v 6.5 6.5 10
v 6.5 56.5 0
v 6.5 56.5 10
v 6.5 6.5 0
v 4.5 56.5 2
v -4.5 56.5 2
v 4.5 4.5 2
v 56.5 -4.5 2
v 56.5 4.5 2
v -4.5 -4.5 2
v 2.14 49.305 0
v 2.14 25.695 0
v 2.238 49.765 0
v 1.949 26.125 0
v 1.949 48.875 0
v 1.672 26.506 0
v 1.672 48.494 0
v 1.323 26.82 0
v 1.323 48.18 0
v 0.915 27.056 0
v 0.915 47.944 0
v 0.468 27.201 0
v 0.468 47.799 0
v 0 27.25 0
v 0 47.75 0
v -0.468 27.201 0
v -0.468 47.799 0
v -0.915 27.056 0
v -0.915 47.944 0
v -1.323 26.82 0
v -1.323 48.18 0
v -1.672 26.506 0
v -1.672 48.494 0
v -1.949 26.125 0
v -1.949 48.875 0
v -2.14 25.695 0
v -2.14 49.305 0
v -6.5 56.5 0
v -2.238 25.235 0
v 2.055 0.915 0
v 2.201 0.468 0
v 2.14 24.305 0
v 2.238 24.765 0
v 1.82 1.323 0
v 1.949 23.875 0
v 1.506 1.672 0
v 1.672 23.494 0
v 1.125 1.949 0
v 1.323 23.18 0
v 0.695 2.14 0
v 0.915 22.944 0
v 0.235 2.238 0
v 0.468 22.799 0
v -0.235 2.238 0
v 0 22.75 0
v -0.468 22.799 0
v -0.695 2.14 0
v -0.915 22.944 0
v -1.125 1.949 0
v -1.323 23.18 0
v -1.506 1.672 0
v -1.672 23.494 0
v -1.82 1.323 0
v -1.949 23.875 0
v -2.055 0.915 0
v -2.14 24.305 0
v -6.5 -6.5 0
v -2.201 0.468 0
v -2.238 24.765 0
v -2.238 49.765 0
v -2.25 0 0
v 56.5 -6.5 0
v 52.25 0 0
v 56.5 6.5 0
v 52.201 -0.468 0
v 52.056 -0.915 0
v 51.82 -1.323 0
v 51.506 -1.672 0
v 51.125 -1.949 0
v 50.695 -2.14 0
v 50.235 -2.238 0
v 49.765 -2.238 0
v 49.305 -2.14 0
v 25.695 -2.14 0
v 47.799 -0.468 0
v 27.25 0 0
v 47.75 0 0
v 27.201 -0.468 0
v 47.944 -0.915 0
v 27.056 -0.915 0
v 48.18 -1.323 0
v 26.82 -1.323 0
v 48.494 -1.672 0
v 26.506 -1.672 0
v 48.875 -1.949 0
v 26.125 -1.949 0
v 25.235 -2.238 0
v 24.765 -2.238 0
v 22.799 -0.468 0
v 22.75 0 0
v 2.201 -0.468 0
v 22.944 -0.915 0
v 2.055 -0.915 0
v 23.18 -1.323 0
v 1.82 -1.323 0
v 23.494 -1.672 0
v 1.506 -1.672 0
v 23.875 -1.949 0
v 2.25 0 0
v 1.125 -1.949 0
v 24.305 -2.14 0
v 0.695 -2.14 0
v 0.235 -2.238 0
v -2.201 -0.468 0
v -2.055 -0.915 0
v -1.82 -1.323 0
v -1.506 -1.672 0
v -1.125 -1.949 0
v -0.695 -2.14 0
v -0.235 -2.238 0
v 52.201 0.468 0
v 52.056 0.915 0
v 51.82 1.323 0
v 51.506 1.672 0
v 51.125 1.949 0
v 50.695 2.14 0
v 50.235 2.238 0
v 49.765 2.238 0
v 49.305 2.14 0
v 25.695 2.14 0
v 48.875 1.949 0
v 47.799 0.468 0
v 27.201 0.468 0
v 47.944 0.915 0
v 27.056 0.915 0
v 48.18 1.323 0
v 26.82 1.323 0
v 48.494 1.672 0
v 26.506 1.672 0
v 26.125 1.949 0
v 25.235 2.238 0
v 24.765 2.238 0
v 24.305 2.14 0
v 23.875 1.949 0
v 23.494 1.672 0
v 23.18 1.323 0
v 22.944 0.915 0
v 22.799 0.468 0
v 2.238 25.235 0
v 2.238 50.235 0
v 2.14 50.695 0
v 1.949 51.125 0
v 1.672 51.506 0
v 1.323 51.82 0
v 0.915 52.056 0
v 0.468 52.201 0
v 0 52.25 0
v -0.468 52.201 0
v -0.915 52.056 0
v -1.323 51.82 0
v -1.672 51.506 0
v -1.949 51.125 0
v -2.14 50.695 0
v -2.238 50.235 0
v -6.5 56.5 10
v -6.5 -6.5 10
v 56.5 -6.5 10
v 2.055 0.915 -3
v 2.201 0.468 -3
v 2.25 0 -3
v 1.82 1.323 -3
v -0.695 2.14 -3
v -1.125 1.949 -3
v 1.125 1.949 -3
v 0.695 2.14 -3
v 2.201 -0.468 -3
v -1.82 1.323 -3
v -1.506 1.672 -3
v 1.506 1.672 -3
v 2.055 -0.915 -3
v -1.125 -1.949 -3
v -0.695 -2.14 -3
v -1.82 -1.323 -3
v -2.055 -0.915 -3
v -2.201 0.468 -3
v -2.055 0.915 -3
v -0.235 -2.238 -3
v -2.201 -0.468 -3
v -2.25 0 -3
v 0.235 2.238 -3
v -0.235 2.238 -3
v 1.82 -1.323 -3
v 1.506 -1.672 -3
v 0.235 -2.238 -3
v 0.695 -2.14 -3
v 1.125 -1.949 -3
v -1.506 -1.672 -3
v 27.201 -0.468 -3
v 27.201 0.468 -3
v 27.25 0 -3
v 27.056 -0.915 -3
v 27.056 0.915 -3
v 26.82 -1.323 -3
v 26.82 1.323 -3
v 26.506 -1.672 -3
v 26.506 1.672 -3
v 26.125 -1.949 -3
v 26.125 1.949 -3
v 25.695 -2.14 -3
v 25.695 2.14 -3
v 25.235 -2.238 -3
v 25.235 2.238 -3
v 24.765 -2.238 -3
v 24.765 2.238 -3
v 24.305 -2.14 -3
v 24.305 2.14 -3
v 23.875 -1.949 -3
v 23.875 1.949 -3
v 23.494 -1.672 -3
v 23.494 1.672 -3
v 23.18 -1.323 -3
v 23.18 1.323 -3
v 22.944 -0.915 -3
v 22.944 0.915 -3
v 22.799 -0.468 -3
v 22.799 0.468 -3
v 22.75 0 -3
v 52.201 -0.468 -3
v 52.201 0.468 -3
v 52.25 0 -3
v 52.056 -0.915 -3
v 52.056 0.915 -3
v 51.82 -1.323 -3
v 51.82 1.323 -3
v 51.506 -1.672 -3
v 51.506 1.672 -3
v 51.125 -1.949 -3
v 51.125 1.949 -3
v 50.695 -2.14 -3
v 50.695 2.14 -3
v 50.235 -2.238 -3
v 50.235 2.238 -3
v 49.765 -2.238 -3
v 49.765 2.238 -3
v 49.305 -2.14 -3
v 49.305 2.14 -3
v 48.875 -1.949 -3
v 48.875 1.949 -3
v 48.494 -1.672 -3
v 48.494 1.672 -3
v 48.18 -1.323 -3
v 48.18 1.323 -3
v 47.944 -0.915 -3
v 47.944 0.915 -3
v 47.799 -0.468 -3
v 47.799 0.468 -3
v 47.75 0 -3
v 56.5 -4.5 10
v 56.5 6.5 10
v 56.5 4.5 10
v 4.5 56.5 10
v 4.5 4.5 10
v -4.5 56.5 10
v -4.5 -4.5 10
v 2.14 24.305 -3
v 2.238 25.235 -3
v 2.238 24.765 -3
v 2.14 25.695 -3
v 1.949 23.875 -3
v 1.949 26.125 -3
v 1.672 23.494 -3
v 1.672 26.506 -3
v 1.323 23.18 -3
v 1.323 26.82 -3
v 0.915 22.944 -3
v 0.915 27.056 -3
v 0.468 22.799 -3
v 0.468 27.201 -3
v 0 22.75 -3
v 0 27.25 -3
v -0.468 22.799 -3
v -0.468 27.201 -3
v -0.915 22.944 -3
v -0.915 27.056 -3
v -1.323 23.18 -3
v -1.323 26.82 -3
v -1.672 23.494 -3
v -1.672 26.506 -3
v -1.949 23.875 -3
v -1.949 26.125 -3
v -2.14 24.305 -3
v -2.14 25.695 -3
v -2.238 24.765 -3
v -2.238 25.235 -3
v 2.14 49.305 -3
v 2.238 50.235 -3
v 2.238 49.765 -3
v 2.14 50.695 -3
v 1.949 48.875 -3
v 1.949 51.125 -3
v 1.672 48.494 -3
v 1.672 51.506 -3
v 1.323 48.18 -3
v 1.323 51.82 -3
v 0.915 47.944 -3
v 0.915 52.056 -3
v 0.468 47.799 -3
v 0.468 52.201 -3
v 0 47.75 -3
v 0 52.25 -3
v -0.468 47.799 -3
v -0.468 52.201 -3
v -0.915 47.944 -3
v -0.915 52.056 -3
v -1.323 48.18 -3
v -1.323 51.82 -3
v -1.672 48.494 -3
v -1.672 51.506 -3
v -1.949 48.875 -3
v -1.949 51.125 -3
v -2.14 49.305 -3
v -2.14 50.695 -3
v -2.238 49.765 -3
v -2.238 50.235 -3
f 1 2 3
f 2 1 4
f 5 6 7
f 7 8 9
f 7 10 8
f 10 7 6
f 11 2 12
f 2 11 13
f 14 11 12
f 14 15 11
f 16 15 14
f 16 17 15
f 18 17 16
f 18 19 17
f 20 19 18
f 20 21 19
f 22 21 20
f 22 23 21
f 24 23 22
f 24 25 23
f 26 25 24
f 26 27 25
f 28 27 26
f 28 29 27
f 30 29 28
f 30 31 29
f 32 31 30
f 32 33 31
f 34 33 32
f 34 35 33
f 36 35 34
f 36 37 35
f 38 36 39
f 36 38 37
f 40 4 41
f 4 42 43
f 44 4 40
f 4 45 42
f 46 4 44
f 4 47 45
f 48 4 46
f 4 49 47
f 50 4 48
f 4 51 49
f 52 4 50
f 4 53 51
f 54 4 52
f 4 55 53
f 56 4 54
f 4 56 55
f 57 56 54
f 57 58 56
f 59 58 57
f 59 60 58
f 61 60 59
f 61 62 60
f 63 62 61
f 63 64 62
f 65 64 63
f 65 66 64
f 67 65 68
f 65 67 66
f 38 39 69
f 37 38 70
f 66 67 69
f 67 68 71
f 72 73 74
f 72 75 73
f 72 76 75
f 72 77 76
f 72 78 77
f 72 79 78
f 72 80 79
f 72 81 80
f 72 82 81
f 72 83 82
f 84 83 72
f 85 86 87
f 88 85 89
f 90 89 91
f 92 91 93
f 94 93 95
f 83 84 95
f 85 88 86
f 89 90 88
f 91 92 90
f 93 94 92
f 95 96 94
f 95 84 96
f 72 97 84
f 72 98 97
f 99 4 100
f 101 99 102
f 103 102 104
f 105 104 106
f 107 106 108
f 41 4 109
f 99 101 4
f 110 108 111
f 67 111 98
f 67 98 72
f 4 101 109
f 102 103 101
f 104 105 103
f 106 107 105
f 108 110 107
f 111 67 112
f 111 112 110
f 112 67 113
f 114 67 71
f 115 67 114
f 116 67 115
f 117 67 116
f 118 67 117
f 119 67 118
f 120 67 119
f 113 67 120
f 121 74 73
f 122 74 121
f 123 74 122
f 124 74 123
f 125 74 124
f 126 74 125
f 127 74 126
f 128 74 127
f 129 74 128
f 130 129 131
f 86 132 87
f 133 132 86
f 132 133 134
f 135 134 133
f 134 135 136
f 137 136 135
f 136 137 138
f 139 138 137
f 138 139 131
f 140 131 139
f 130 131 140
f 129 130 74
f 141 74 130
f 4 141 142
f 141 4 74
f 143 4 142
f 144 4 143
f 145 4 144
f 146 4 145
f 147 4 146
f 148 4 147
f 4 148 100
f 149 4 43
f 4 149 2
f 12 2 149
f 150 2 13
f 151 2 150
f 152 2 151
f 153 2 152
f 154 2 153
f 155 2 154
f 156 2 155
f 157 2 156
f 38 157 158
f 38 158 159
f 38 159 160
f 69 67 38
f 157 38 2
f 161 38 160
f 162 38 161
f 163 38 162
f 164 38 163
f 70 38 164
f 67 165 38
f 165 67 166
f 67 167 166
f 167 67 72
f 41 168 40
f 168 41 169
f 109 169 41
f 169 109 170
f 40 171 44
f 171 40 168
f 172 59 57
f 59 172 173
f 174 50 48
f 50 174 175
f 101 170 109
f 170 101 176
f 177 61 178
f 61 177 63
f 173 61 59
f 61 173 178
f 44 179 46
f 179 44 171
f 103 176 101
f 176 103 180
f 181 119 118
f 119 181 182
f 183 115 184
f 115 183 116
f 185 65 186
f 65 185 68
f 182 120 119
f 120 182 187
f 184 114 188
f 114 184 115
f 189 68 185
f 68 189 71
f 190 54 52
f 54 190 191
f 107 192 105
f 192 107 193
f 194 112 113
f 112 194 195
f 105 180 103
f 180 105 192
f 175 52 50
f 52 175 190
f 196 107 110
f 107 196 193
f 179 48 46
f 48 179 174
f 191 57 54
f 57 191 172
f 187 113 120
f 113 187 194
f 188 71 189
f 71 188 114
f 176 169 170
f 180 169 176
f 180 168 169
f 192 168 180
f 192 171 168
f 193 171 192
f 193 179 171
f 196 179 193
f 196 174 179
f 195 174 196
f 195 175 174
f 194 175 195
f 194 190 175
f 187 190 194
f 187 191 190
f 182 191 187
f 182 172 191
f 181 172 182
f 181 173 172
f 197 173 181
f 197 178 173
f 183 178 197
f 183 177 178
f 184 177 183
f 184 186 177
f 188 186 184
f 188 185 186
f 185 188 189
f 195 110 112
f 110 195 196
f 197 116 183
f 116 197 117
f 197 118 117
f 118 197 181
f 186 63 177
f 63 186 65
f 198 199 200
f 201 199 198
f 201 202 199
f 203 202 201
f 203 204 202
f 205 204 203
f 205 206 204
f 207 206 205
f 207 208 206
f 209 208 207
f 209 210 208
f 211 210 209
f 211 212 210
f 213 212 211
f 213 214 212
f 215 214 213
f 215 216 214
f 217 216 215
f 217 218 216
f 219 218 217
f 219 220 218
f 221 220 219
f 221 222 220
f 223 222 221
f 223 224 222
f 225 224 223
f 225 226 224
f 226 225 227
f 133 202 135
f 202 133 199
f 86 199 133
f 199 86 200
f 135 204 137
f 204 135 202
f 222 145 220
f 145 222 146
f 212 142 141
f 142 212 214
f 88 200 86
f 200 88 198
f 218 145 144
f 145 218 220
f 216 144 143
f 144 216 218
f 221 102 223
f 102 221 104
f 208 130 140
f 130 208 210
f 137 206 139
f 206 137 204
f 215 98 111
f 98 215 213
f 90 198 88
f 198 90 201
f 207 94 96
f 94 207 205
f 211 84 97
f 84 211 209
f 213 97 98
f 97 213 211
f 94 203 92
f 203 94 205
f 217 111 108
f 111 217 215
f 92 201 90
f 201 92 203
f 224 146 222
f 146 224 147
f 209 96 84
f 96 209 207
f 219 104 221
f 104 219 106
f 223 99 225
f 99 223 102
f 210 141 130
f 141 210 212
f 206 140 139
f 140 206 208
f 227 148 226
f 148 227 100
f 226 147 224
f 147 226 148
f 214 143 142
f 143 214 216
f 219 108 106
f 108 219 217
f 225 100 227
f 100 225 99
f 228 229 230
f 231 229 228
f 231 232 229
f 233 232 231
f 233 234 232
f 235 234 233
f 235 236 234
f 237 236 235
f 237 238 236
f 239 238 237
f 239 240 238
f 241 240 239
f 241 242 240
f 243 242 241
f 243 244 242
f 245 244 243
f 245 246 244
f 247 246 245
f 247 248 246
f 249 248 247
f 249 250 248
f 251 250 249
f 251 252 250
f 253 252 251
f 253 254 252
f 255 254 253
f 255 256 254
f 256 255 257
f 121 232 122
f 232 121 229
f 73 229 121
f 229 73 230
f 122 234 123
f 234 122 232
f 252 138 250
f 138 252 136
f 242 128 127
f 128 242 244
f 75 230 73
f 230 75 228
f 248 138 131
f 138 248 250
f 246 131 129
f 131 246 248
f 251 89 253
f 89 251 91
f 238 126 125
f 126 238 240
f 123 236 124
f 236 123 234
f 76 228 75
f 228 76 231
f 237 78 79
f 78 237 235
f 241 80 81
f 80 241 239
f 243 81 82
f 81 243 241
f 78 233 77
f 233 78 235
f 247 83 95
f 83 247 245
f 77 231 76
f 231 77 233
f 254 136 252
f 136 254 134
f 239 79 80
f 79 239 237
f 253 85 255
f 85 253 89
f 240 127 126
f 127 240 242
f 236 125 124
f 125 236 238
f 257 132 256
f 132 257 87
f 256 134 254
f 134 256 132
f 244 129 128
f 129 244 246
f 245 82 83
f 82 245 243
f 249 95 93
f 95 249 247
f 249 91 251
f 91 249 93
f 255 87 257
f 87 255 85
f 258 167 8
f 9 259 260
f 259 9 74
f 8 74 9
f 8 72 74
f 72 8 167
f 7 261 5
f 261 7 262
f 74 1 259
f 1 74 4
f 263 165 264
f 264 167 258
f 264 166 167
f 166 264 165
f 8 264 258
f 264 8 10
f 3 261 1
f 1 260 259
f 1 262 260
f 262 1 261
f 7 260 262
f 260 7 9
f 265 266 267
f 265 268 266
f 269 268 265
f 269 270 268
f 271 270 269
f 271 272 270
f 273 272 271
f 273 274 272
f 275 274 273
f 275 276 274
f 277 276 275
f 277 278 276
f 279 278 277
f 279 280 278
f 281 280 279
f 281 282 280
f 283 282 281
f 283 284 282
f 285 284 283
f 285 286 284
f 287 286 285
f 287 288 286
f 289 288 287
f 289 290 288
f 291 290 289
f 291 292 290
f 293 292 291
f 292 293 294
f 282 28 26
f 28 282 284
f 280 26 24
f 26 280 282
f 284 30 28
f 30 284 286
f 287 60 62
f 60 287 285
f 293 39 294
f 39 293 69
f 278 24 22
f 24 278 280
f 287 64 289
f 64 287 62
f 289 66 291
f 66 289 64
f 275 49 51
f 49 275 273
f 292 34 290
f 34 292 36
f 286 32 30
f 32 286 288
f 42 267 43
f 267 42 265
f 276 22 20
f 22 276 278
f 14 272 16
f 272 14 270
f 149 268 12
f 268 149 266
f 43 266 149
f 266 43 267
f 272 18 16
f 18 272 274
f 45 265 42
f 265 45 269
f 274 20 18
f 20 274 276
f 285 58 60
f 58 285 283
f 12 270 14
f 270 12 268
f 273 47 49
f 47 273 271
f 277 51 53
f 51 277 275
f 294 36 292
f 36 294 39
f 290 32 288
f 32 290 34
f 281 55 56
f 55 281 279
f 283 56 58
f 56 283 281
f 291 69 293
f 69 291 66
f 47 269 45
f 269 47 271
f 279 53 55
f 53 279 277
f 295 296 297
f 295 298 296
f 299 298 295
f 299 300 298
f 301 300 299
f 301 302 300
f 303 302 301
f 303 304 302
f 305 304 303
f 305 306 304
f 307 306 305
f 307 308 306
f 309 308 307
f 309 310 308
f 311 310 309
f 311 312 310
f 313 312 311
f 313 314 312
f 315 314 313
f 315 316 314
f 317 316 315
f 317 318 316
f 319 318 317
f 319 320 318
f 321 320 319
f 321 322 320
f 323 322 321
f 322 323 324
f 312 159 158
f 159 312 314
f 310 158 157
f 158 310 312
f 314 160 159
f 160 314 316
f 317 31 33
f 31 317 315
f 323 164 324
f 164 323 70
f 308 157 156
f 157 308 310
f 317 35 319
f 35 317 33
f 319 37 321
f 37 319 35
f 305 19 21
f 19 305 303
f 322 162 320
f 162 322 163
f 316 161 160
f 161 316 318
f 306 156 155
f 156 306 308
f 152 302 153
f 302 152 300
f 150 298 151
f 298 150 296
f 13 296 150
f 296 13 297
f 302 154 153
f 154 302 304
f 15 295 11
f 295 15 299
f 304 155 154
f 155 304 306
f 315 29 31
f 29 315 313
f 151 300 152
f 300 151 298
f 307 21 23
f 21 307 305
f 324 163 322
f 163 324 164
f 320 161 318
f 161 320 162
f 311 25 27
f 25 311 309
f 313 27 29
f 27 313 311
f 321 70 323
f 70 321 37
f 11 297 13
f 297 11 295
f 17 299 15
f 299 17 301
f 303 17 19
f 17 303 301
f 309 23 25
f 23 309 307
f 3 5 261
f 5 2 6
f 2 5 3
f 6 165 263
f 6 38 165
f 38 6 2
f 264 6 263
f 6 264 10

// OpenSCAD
// file: common.scad
CENTER_SIZE = 9;
SLEEVE_REACH = 56.5;
GROOVE_WIDTH = 9;
WALL_HEIGHT = 10;
WALL_THICKNESS = 2;
BASE_THICKNESS = 2;
TOTAL_WIDTH = GROOVE_WIDTH + 2 * WALL_THICKNESS;
SLEEVE_LENGTH = SLEEVE_REACH - CENTER_SIZE/2;
DOWEL_DIAMETER = 4.5;
DOWEL_DEPTH = 3;
CARDBOARD_THICKNESS = 2;
GROOVE_BOTTOM = CARDBOARD_THICKNESS;
CURVE_POWER = 2;
CURVE_POINTS = 20;
TILT_ANGLE_EXTRA = 5;
FLEXIBLE_WALL_HEIGHT = WALL_HEIGHT * 2;
function wall_curve(z) =
    GROOVE_BOTTOM/2 + (GROOVE_WIDTH/2 - GROOVE_BOTTOM/2) * pow(z/(FLEXIBLE_WALL_HEIGHT - BASE_THICKNESS), CURVE_POWER);
module curved_wall_profile(side) {
    wall_h = FLEXIBLE_WALL_HEIGHT - BASE_THICKNESS;
    points_inner = [for (i = [0:CURVE_POINTS])
        [wall_curve(i * wall_h / CURVE_POINTS) * side,
         i * wall_h / CURVE_POINTS]
    ];
    points_outer = [for (i = [0:CURVE_POINTS])
        [(wall_curve(i * wall_h / CURVE_POINTS) + WALL_THICKNESS) * side,
         i * wall_h / CURVE_POINTS]
    ];
    all_points = concat(
        [[points_inner[0][0], 0]],
        points_inner,
        [points_outer[len(points_outer)-1]],
        [for (i = [len(points_outer)-1:-1:0]) points_outer[i]],
        [[points_outer[0][0], 0]]
    );
    polygon(all_points);
}
module draw_regular_wall_base(width) {
    translate([0, 0, BASE_THICKNESS])
        cube([width, WALL_THICKNESS, WALL_HEIGHT - BASE_THICKNESS]);
}
module draw_flexible_wall_base(width) {
    tilt_angle = atan((GROOVE_WIDTH/2 - GROOVE_BOTTOM/2) / (FLEXIBLE_WALL_HEIGHT - BASE_THICKNESS)) + TILT_ANGLE_EXTRA;
    rotate([0, 0, 90])
        rotate([tilt_angle + 6, 0, 0])
            rotate([90, 0, 90])
                linear_extrude(height = width)
                    curved_wall_profile(1);
}
module draw_center_base(with_dowel = false) {
    union() {
        translate([-TOTAL_WIDTH/2, -TOTAL_WIDTH/2, 0])
            cube([TOTAL_WIDTH, TOTAL_WIDTH, BASE_THICKNESS]);
        if (with_dowel) {
            translate([0, 0, -DOWEL_DEPTH])
                cylinder(h=DOWEL_DEPTH, d=DOWEL_DIAMETER, $fn=30);
        }
    }
}
module place_regular_center_wall(side) {
    if (side == 0) {
        translate([CENTER_SIZE/2 + WALL_THICKNESS, -TOTAL_WIDTH/2, 0])
            rotate([0, 0, 90])
                draw_regular_wall_base(TOTAL_WIDTH);
    } else if (side == 1) {
        translate([-TOTAL_WIDTH/2, CENTER_SIZE/2, 0])
            draw_regular_wall_base(TOTAL_WIDTH);
    } else if (side == 2) {
        translate([-CENTER_SIZE/2, -TOTAL_WIDTH/2, 0])
            rotate([0, 0, 90])
                draw_regular_wall_base(TOTAL_WIDTH);
    } else if (side == 3) {
        translate([-TOTAL_WIDTH/2, -CENTER_SIZE/2 - WALL_THICKNESS, 0])
            draw_regular_wall_base(TOTAL_WIDTH);
    }
}
module place_flexible_center_wall(side) {
    if (side == 0) {
        translate([CENTER_SIZE/2 - WALL_THICKNESS/2, TOTAL_WIDTH/2, 0])
            rotate([0, 0, 180])
                draw_flexible_wall_base(TOTAL_WIDTH);
    } else if (side == 1) {
        translate([-TOTAL_WIDTH/2, CENTER_SIZE/2 - WALL_THICKNESS/2, 0])
            rotate([0, 0, 270])
                draw_flexible_wall_base(TOTAL_WIDTH);
    } else if (side == 2) {
        translate([-CENTER_SIZE/2 + WALL_THICKNESS/2, -TOTAL_WIDTH/2, 0])
            draw_flexible_wall_base(TOTAL_WIDTH);
    } else if (side == 3) {
        translate([CENTER_SIZE/2 + WALL_THICKNESS, -TOTAL_WIDTH/2 + WALL_THICKNESS + WALL_THICKNESS/2, 0])
            rotate([0, 0, 90])
                draw_flexible_wall_base(TOTAL_WIDTH);
    }
}
module place_center_wall(side, wall_type = "regular") {
    if (wall_type == "regular") {
        place_regular_center_wall(side);
    } else if (wall_type == "flexible") {
        place_flexible_center_wall(side);
    }
}
module draw_sleeve_base(with_dowel = false) {
    union() {
        translate([0, -TOTAL_WIDTH/2, 0])
            cube([SLEEVE_LENGTH, TOTAL_WIDTH, BASE_THICKNESS]);
        if (with_dowel) {
            translate([25 - CENTER_SIZE/2, 0, -DOWEL_DEPTH])
                cylinder(h=DOWEL_DEPTH, d=DOWEL_DIAMETER, $fn=30);
            translate([50 - CENTER_SIZE/2, 0, -DOWEL_DEPTH])
                cylinder(h=DOWEL_DEPTH, d=DOWEL_DIAMETER, $fn=30);
        }
    }
}
module draw_regular_sleeve_wall(wall_side) {
    y_offset = (wall_side == "left") ? -TOTAL_WIDTH/2 : TOTAL_WIDTH/2 - WALL_THICKNESS;
    translate([0, y_offset, 0])
        draw_regular_wall_base(SLEEVE_LENGTH);
}
module draw_flexible_sleeve_wall(side) {
    if (side == "left") {
        translate([0, TOTAL_WIDTH/2 - WALL_THICKNESS/2 - WALL_THICKNESS, 0])
            rotate([0, 0, 270])
                draw_flexible_wall_base(SLEEVE_LENGTH);
    } else if (side == "right") {
        translate([SLEEVE_LENGTH, -TOTAL_WIDTH/2 + WALL_THICKNESS + WALL_THICKNESS/2, 0])
            rotate([0, 0, 90])
                draw_flexible_wall_base(SLEEVE_LENGTH);
    }
}
module draw_sleeve_wall(wall_side, wall_type = "regular") {
    if (wall_type == "regular") {
        draw_regular_sleeve_wall(wall_side);
    } else if (wall_type == "flexible") {
        draw_flexible_sleeve_wall(wall_side);
    }
}
module draw_full_sleeve(with_dowel = false, wall_type = "regular") {
    union() {
        draw_sleeve_base(with_dowel);
        draw_sleeve_wall("left", wall_type);
        draw_sleeve_wall("right", wall_type);
    }
}
module place_sleeve(side, with_dowel = false, wall_type = "regular") {
    if (side == 0) {
        translate([CENTER_SIZE/2, 0, 0])
            draw_full_sleeve(with_dowel, wall_type);
    } else if (side == 1) {
        rotate([0, 0, 90])
            translate([CENTER_SIZE/2, 0, 0])
                draw_full_sleeve(with_dowel, wall_type);
    } else if (side == 2) {
        rotate([0, 0, 180])
            translate([CENTER_SIZE/2, 0, 0])
                draw_full_sleeve(with_dowel, wall_type);
    } else if (side == 3) {
        rotate([0, 0, 270])
            translate([CENTER_SIZE/2, 0, 0])
                draw_full_sleeve(with_dowel, wall_type);
    }
}
module add_dowel(x, y, dowel_diameter, dowel_depth) {
    translate([x, y, -dowel_depth])
        cylinder(h=dowel_depth, d=dowel_diameter, $fn=30);
}
// main file
use <common.scad>

union() {
    draw_center_base(with_dowel = true);
    place_center_wall(2);
    place_center_wall(3);
    place_sleeve(0, with_dowel = true);
    place_sleeve(1, with_dowel = true);
}
